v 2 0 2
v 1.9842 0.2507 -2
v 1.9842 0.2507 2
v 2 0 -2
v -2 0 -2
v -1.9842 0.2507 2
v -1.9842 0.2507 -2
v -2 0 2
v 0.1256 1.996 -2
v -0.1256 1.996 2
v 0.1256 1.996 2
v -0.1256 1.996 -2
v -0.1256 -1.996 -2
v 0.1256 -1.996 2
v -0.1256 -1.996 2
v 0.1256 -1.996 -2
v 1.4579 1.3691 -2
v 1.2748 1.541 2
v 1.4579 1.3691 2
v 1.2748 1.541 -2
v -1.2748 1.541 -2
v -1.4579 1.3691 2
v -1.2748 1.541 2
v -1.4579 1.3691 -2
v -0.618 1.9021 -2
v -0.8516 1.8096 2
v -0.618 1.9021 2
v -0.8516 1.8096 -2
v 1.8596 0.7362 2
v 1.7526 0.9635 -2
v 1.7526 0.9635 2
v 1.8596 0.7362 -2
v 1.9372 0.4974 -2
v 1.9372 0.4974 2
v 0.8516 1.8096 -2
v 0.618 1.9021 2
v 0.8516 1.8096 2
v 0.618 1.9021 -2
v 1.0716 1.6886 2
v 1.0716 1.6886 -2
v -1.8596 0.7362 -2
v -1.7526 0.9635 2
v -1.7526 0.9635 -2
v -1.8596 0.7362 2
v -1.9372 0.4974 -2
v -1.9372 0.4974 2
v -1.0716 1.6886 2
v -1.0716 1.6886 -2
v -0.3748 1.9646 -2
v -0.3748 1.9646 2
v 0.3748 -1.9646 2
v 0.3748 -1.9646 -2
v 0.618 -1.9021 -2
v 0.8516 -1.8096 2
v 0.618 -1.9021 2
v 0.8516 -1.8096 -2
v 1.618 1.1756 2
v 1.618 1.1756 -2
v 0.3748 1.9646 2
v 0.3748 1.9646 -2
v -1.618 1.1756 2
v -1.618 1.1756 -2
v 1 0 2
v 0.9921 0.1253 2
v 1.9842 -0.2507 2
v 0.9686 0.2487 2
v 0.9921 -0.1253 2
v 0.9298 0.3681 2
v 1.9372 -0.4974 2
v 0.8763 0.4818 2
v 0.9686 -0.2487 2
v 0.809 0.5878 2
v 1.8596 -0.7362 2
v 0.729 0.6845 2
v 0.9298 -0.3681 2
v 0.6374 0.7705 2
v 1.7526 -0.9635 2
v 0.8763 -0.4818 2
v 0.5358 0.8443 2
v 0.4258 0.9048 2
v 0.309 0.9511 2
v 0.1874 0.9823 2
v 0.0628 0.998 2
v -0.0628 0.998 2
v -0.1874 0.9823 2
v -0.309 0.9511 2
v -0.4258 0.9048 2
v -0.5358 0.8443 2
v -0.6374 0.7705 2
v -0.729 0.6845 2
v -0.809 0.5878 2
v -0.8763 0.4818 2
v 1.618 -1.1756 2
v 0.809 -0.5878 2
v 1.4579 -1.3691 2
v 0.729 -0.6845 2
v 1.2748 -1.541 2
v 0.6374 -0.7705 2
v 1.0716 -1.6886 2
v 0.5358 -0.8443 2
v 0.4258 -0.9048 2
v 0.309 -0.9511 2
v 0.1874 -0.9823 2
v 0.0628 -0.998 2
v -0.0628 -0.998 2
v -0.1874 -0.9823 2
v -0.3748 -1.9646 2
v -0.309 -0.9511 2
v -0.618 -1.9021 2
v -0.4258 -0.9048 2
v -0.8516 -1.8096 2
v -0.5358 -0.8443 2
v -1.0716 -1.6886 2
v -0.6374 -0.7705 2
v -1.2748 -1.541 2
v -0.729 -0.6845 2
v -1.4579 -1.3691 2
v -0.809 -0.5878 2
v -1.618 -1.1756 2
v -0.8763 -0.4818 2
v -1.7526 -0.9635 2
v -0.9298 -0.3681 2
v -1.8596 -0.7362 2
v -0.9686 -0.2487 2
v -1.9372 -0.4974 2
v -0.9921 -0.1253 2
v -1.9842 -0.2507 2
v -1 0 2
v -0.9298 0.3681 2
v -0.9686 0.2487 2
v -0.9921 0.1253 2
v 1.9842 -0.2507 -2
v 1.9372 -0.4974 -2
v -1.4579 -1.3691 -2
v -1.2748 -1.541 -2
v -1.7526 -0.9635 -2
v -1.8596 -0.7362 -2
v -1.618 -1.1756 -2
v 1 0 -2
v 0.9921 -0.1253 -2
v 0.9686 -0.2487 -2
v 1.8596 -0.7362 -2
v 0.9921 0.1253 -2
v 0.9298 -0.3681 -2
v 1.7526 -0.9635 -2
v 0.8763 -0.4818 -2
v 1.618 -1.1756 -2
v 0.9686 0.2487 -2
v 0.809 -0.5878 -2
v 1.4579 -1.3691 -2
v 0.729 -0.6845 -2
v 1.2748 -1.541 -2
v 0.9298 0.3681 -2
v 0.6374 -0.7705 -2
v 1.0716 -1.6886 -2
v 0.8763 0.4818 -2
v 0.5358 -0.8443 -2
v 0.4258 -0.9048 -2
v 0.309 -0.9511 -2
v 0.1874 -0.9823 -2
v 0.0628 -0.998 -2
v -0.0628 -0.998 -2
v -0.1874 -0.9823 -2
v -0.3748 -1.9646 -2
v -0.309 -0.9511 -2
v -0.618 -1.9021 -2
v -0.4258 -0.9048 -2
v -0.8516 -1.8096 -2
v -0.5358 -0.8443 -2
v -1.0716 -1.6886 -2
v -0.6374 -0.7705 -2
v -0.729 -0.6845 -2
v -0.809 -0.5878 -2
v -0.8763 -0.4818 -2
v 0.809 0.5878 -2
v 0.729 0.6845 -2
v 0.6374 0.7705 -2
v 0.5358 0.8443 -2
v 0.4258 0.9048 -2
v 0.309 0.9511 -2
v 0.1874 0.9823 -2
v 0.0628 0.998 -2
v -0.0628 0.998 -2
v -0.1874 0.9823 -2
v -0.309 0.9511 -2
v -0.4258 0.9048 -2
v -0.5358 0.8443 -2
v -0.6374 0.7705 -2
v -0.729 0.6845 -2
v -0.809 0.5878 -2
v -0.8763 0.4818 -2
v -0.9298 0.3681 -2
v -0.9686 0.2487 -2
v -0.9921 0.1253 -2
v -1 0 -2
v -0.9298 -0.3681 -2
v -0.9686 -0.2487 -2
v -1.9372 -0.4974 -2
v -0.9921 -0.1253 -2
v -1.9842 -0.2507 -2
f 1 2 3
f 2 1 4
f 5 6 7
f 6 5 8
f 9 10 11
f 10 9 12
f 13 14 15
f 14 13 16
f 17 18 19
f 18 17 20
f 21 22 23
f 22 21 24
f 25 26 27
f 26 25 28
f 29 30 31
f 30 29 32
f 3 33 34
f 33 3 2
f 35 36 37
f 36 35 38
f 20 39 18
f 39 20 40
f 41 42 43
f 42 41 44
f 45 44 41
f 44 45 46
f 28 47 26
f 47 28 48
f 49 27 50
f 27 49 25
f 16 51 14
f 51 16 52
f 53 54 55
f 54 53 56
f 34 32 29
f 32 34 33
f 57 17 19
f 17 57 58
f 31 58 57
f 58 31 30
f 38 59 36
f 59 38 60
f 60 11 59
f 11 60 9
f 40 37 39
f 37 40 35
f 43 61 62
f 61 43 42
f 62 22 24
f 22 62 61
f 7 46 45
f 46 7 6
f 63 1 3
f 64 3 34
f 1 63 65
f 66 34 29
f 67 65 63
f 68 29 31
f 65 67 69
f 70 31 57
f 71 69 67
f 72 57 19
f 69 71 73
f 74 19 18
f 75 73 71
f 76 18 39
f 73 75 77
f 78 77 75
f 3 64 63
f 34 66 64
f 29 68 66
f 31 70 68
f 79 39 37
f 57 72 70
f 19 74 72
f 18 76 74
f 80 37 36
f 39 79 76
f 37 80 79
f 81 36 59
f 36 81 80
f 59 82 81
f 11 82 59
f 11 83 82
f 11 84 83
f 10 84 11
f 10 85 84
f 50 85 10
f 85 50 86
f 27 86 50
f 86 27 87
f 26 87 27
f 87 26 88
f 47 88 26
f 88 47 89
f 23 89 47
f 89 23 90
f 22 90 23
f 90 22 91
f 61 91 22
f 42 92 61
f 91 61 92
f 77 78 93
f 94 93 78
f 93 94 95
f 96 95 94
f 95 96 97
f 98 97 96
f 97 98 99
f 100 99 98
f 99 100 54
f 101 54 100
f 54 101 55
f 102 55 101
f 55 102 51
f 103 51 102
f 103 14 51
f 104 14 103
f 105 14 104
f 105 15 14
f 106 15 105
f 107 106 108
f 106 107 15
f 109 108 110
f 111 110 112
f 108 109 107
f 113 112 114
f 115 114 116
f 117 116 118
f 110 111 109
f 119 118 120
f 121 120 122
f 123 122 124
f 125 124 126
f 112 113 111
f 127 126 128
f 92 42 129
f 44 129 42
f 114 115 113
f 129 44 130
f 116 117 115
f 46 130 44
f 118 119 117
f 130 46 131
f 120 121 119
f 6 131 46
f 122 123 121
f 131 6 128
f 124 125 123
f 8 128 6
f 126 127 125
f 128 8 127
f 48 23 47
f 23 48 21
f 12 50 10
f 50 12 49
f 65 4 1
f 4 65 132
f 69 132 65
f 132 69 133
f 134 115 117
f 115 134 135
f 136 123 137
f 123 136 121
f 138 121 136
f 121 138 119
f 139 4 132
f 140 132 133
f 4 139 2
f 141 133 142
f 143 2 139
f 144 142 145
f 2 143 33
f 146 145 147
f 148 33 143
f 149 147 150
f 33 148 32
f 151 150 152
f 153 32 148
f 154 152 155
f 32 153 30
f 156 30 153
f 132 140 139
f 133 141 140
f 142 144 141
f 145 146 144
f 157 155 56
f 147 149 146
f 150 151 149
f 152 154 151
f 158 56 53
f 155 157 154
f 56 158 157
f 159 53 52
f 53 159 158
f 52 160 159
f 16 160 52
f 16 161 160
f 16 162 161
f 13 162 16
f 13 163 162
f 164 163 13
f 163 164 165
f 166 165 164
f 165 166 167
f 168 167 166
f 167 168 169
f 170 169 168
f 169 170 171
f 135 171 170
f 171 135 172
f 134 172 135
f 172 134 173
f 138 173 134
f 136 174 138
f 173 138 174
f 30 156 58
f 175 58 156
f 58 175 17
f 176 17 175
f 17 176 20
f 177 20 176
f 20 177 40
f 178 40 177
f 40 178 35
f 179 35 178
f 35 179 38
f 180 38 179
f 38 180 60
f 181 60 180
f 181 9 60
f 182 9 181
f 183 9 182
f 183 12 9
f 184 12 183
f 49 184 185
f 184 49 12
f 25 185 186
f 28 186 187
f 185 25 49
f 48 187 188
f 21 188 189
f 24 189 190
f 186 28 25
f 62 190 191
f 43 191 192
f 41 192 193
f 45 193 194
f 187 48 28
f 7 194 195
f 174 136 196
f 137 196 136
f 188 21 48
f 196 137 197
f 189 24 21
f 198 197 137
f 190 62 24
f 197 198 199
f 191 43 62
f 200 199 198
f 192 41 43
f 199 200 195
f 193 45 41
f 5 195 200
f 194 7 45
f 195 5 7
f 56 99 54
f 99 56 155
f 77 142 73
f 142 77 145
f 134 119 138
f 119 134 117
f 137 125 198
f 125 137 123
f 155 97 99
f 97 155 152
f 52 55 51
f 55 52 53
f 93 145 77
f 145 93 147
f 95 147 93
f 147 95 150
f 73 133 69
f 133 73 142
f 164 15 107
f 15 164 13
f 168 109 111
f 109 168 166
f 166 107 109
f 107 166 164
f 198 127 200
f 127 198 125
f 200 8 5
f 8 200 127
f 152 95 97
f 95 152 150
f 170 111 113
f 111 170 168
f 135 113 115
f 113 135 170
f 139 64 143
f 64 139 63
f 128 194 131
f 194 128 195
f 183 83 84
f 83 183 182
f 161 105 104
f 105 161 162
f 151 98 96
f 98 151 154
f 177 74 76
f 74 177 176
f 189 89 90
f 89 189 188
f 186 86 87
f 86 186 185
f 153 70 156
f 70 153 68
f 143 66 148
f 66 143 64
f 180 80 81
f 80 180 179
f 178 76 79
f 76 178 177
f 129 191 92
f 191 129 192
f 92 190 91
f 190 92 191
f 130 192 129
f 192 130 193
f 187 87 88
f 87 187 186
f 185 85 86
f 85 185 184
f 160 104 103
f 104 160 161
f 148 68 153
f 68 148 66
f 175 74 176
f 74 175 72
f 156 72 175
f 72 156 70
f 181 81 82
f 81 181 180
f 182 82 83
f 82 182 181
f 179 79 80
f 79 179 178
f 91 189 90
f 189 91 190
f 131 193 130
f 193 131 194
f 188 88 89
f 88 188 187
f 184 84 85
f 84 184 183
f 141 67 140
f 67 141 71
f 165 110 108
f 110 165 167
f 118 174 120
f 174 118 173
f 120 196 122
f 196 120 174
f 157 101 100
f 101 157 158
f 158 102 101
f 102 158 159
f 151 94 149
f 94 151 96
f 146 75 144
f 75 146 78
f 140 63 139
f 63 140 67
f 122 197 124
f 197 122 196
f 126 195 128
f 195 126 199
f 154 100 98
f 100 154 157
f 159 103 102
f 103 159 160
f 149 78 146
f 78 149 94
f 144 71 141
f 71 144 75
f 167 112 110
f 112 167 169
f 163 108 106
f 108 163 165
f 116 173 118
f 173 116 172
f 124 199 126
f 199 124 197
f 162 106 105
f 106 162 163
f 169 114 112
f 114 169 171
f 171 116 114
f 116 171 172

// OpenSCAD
$fn = 50;


difference() {
	union() {
		translate(v = [0, 0, -2.0000000000]) {
			cylinder(h = 4, r = 2.0000000000);
		}
	}
	union() {
		translate(v = [0, 0, -100.0000000000]) {
			cylinder(h = 200, r = 1.0000000000);
		}
	}
}
